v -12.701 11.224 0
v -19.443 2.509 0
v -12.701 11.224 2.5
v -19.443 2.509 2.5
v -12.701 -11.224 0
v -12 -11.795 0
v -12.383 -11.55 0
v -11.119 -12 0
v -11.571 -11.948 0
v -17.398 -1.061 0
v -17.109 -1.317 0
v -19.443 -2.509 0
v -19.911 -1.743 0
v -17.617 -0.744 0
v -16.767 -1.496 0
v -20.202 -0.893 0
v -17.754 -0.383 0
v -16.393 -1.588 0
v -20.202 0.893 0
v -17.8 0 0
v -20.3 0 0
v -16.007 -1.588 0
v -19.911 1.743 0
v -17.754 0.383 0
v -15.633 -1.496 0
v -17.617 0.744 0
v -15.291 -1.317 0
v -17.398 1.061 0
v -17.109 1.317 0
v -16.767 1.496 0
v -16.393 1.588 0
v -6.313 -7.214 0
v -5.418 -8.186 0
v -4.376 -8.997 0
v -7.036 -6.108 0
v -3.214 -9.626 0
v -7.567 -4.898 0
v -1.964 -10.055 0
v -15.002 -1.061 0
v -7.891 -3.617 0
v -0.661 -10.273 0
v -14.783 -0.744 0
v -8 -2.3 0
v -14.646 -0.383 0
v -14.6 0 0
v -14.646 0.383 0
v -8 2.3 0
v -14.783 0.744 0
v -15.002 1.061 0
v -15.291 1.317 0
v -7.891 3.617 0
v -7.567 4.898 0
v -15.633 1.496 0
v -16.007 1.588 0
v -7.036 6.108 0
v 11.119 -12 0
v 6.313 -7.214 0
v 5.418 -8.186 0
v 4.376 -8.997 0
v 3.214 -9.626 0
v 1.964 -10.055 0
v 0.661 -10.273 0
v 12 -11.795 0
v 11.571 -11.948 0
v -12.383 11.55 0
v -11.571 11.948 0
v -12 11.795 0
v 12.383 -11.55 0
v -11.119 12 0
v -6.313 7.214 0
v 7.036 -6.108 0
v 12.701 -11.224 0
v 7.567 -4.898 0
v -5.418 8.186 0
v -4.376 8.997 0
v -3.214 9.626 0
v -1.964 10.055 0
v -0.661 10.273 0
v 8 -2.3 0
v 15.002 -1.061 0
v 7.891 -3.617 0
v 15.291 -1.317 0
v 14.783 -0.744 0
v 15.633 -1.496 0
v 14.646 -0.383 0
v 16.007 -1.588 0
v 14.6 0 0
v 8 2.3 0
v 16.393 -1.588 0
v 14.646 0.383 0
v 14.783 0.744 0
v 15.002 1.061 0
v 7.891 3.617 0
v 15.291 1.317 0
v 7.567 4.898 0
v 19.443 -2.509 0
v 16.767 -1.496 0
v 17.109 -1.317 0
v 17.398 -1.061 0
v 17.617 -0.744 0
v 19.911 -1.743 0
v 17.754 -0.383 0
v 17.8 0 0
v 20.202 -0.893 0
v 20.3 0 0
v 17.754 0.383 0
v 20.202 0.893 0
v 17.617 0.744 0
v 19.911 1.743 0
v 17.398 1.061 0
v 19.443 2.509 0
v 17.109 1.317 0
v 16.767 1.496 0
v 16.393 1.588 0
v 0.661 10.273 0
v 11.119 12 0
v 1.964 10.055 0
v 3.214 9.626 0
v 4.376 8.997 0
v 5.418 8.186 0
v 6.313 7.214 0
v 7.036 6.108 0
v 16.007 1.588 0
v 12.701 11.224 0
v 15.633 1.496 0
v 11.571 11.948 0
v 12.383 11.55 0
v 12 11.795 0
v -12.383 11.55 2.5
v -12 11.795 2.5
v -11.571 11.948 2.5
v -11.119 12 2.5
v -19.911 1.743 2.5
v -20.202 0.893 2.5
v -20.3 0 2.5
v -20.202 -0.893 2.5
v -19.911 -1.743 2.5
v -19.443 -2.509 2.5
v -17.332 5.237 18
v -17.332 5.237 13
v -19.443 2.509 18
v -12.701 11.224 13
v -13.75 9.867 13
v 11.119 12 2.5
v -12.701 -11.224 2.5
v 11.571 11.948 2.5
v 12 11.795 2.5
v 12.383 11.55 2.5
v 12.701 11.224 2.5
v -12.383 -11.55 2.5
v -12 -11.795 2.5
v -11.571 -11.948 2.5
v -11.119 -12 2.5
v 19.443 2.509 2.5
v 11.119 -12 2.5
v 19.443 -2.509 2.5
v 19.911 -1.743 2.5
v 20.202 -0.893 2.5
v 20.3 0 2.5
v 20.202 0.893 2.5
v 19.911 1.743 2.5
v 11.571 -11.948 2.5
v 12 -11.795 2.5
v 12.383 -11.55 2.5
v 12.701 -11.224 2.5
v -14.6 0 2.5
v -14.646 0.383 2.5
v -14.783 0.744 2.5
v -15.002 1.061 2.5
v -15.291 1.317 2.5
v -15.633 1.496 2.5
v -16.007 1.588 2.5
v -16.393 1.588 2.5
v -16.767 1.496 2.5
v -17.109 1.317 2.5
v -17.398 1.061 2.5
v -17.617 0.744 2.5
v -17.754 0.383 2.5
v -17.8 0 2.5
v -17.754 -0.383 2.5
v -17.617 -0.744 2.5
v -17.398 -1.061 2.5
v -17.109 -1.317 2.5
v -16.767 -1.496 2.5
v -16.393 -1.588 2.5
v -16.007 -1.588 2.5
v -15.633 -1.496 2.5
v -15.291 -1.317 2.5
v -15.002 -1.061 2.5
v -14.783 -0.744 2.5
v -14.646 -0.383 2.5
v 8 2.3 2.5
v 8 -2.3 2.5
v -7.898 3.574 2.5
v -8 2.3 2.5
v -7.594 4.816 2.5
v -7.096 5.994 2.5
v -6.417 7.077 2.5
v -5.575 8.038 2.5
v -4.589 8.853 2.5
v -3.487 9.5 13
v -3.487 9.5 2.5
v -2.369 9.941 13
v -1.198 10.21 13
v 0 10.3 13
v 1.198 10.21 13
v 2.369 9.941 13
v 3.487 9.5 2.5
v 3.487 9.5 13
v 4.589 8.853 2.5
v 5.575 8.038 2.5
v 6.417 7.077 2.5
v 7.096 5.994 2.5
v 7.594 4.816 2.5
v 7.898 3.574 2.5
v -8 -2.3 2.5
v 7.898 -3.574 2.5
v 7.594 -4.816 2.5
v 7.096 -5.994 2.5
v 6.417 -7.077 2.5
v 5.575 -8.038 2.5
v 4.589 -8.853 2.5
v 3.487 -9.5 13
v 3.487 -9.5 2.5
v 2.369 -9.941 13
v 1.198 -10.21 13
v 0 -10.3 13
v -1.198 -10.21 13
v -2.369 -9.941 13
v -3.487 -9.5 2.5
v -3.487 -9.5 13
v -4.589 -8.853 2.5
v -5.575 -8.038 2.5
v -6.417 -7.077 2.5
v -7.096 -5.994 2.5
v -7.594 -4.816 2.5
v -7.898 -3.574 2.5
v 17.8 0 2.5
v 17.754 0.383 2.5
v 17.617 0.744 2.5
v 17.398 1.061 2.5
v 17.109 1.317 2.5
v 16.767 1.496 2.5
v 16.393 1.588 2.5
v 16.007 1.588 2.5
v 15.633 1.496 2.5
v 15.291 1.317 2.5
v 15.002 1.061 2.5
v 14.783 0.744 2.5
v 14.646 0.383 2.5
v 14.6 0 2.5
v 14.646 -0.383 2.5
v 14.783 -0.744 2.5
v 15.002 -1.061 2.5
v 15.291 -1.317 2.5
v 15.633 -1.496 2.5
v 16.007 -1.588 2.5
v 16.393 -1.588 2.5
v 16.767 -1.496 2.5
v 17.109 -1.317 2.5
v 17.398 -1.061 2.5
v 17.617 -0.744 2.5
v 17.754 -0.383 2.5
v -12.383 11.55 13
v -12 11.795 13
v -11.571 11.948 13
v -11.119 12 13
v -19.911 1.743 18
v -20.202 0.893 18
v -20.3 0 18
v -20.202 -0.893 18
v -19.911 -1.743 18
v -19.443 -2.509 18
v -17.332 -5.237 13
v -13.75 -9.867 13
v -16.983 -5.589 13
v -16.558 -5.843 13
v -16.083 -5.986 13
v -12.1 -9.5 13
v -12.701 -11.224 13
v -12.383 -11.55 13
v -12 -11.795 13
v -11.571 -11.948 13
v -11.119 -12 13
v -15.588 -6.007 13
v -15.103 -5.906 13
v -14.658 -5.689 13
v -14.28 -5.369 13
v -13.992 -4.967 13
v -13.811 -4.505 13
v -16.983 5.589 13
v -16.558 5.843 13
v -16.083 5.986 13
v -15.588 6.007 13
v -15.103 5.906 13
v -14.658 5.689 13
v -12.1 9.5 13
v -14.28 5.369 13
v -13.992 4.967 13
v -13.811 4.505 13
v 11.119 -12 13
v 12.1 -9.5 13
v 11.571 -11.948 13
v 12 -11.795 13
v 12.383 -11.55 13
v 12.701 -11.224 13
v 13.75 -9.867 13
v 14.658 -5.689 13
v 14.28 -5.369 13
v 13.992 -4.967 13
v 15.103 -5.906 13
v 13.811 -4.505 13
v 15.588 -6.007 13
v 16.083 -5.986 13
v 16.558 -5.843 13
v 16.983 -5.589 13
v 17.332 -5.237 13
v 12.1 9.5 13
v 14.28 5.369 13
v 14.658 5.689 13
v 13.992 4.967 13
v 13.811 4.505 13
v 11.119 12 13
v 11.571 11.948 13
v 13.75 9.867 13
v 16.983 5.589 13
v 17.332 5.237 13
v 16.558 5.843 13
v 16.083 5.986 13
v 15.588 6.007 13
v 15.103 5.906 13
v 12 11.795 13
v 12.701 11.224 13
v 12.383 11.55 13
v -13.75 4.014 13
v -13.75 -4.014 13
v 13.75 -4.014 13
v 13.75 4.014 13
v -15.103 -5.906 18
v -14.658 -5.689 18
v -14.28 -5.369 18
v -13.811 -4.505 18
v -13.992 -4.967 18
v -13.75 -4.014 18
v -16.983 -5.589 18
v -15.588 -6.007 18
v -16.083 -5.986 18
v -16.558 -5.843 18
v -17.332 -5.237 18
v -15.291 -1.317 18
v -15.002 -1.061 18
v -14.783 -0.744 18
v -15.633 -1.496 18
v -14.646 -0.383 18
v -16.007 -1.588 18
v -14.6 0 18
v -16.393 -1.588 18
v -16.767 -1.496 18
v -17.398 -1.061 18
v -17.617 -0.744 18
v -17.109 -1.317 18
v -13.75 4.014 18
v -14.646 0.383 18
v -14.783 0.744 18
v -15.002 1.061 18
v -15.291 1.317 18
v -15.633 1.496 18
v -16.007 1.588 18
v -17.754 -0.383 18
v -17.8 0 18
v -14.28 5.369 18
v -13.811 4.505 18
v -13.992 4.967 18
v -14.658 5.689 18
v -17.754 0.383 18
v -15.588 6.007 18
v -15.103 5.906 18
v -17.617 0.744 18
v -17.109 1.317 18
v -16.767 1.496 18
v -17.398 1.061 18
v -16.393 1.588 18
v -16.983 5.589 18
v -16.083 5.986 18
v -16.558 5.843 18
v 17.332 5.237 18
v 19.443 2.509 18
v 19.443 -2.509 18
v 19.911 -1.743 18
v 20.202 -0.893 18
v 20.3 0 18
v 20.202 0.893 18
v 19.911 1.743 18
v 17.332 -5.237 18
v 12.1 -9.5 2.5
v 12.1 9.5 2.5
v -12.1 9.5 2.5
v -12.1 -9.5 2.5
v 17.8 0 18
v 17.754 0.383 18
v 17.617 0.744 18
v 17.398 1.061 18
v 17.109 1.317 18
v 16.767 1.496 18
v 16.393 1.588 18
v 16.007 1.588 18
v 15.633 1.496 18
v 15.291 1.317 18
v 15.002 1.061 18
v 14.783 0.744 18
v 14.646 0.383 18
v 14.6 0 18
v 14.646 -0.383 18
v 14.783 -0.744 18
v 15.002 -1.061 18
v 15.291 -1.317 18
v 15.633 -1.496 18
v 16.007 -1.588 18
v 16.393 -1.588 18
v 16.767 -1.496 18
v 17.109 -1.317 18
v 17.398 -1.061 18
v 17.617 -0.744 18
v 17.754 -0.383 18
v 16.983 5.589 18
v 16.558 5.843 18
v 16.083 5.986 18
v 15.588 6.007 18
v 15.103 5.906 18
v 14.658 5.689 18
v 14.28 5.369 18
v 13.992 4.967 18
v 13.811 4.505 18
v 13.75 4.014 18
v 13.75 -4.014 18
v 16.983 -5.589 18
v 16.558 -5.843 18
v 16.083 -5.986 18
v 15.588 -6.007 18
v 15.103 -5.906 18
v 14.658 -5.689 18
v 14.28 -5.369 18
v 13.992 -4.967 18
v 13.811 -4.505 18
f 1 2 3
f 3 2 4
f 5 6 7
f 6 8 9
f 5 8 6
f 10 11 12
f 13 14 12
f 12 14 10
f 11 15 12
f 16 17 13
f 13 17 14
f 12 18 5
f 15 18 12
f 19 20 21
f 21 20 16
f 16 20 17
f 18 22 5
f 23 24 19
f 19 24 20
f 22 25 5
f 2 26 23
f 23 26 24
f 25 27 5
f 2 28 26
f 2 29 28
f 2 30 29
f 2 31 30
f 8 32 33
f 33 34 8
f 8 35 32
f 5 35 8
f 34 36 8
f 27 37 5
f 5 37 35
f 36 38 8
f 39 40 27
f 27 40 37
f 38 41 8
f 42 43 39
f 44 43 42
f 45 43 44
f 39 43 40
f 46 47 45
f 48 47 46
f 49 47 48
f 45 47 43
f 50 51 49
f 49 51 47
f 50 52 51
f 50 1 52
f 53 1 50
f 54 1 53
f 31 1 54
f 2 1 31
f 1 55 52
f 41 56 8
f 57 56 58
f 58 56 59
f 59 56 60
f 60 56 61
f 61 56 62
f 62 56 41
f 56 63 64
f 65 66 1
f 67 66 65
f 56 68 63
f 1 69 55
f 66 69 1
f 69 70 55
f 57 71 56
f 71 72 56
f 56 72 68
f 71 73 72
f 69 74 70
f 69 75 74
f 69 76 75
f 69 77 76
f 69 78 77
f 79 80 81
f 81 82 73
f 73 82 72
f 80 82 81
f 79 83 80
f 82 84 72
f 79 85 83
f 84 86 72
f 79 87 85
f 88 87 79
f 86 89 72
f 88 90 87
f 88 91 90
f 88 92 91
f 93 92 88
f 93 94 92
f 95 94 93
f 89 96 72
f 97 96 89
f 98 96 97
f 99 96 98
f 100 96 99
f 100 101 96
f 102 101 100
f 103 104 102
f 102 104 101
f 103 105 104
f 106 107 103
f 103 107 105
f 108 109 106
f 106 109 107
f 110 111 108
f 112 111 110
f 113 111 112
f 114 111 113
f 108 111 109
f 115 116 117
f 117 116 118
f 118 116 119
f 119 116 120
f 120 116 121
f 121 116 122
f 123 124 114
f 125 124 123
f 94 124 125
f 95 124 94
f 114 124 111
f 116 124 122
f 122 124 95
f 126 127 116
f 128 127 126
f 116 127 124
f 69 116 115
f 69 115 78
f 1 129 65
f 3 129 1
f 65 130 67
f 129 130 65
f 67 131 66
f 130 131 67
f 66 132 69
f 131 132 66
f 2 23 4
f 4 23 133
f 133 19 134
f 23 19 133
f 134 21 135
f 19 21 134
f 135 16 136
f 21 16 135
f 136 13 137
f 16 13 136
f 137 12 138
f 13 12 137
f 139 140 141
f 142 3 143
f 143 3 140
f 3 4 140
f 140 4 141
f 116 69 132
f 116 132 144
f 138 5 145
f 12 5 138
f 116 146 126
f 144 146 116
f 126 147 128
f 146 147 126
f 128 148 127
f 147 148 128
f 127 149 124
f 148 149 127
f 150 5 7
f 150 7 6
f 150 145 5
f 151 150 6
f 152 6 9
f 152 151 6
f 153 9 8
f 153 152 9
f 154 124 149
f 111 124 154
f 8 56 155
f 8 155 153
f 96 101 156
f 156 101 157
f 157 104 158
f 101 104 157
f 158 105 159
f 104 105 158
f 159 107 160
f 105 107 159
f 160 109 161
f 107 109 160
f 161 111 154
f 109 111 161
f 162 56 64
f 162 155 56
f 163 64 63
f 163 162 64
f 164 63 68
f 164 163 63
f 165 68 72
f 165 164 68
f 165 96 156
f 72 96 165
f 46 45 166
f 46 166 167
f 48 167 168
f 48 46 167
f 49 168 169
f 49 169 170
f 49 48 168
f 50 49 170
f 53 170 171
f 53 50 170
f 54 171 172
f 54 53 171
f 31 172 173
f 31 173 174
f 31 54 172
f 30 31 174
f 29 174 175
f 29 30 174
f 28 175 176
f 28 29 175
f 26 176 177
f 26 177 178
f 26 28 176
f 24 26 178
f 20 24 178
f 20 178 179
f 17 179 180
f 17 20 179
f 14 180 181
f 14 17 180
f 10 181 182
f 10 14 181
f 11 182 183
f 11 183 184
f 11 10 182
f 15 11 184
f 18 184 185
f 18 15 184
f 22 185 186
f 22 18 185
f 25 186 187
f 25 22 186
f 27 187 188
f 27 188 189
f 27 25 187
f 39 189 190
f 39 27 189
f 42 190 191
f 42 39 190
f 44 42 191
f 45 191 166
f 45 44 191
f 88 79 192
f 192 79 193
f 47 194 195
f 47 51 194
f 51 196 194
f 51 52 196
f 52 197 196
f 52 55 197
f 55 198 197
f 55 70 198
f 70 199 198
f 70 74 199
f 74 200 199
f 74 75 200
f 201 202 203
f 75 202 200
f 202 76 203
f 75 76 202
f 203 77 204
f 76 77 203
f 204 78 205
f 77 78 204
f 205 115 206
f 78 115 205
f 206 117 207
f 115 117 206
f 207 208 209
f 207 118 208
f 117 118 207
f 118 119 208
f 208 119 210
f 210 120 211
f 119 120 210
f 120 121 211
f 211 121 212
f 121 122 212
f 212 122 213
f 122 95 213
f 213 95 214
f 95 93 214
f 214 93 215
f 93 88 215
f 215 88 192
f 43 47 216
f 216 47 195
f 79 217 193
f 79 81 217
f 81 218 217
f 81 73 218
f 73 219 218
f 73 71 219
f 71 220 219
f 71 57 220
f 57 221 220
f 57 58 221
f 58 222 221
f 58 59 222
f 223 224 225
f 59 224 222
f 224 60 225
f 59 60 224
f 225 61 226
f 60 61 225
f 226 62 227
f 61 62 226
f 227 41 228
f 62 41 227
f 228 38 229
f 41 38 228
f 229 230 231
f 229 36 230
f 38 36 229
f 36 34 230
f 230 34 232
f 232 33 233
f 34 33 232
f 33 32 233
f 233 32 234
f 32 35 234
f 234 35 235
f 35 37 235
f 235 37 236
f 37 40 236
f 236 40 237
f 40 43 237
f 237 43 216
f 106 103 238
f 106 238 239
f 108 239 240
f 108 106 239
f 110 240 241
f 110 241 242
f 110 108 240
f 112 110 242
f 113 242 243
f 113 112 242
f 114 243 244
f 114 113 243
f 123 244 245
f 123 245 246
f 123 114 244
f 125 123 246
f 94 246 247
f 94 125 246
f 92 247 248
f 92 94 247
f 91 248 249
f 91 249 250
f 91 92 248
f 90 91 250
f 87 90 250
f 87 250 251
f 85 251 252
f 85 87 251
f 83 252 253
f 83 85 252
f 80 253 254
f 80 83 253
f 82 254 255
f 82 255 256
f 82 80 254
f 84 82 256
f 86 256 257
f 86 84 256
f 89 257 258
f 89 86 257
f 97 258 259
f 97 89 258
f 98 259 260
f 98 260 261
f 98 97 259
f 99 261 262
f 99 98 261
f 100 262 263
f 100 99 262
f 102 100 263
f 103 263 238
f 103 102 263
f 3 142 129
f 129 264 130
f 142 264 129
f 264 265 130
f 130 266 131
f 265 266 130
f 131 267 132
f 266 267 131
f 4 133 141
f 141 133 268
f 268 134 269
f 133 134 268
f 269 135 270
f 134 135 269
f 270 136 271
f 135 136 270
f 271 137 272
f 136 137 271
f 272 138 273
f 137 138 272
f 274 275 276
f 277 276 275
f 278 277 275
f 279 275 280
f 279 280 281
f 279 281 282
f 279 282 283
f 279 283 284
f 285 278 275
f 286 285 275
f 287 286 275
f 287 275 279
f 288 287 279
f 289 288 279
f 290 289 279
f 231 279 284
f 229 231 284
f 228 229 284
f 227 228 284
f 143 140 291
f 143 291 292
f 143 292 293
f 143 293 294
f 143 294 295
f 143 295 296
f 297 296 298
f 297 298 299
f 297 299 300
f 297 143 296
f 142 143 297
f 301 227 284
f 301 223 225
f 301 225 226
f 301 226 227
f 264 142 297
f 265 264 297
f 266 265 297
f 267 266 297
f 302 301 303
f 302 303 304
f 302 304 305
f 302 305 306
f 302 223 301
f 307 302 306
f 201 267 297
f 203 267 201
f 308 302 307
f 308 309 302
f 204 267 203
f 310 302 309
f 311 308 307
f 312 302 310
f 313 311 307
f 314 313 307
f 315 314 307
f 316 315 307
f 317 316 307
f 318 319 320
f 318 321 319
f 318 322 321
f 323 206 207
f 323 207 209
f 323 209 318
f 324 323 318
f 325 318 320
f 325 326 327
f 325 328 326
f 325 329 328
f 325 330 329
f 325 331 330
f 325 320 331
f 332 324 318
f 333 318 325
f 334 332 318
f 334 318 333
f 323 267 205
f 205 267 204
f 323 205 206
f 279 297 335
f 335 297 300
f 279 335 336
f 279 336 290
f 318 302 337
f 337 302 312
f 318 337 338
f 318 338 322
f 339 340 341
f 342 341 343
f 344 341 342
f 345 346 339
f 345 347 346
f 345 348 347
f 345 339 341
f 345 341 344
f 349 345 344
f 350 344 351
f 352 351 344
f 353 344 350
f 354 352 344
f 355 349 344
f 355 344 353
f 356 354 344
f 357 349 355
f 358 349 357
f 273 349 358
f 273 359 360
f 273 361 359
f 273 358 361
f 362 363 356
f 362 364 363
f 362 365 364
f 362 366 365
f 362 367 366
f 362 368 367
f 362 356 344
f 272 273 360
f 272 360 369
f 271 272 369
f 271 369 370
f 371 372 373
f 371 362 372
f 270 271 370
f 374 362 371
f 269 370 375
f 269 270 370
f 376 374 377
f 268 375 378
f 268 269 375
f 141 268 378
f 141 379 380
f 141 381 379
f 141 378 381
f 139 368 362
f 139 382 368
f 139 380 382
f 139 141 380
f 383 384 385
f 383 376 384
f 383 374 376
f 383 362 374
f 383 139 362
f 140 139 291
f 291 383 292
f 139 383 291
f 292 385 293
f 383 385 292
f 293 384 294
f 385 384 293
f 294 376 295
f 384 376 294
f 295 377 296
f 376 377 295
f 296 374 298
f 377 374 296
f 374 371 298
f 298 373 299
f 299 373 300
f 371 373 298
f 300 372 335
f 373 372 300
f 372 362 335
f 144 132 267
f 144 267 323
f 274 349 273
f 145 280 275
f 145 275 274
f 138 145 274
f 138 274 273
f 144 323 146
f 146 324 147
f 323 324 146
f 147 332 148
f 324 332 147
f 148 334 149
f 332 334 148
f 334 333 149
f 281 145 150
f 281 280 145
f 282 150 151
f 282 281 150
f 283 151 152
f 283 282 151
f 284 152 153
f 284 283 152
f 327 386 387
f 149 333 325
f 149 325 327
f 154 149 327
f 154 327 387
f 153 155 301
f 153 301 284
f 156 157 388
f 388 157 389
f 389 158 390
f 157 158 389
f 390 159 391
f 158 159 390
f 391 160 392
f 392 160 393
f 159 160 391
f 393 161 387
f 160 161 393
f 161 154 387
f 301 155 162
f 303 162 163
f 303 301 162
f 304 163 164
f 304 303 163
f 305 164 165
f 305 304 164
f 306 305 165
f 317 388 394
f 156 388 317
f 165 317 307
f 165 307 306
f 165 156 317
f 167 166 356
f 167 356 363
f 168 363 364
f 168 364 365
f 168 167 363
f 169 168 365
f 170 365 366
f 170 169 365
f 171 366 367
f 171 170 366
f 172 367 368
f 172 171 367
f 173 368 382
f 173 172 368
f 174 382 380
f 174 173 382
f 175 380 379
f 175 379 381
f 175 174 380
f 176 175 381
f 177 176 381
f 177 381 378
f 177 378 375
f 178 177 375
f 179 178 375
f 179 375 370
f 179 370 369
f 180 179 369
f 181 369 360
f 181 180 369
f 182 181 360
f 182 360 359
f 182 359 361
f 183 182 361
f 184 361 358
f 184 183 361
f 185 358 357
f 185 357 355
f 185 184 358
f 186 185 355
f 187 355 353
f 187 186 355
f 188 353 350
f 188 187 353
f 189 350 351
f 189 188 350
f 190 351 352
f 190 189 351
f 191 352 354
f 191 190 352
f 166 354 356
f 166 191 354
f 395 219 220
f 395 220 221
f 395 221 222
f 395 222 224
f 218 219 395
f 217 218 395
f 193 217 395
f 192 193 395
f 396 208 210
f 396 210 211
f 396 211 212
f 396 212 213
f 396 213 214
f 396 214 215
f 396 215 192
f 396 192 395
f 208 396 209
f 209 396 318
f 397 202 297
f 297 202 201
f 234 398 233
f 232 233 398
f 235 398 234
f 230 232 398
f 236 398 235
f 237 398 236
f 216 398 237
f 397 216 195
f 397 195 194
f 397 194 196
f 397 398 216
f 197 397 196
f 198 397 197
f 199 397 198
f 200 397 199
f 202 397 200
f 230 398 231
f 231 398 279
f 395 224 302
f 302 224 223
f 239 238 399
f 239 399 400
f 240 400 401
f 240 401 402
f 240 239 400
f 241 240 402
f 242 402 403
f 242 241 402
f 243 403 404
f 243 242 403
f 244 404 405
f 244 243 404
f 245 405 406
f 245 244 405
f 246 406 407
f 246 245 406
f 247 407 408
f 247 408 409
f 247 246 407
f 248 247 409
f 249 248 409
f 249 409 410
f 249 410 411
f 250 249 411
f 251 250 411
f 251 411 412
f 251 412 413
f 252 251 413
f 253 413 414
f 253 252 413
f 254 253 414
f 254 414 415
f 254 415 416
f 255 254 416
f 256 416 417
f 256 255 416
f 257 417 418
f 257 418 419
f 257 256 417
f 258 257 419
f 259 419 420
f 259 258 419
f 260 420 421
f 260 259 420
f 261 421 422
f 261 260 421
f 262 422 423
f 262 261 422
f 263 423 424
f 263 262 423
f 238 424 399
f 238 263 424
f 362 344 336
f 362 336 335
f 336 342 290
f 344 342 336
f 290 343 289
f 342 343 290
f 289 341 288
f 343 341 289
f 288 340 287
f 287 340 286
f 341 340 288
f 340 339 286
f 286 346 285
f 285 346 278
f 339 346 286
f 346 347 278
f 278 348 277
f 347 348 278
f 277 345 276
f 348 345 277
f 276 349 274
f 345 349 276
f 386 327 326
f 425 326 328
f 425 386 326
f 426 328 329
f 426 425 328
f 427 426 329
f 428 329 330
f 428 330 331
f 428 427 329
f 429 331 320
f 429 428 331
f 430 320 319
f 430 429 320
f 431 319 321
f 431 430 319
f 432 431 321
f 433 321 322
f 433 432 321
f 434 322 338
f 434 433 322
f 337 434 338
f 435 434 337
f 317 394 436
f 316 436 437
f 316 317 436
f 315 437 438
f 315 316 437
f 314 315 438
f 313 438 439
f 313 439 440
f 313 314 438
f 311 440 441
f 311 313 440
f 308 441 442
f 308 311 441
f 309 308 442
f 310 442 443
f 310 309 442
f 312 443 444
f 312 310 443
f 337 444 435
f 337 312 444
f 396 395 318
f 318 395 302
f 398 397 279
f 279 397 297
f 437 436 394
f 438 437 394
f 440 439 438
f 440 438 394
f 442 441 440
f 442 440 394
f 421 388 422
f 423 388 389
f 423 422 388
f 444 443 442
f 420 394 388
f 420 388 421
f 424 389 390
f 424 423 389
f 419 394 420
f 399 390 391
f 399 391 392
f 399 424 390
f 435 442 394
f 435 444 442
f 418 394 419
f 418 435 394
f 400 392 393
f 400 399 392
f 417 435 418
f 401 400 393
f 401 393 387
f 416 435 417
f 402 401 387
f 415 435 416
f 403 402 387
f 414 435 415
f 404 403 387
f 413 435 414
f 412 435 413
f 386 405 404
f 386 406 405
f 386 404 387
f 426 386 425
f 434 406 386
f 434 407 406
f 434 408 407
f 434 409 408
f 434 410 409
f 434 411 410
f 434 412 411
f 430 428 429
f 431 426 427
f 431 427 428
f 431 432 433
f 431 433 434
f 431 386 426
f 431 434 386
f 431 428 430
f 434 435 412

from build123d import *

# Parameters (mm, degrees)
SKETCH_R        = 1.6
PAD_DEPTH       = 2.5
SKETCH001_R     = 1.6
SKETCH001_W     = 24.2
SKETCH001_H     = 19
PAD001_DEPTH    = 15.5
SKETCH002_W     = 27.5
SKETCH002_H     = 25
POCKET_DEPTH    = 5
POCKET001_DEPTH = 18.001
FILLET_R        = 2


with BuildPart() as part:
    # Sketch → Pad (new body)
    with BuildSketch(Plane.XY):
        with BuildLine():
            Line((-12.1, 12), (12.1, 12))
            Line((12.1, 12), (19.442827, 2.508799))
            ThreePointArc((19.442837, -2.508786), (20.3, 8e-06), (19.442827, 2.508799))
            Line((19.442837, -2.508786), (12.1, -12))
            Line((12.1, -12), (-12.1, -12))
            Line((-12.1, -12), (-19.442827, -2.508799))
            ThreePointArc((-19.442827, 2.508799), (-20.3, 0), (-19.442827, -2.508799))
            Line((-12.1, 12), (-19.442827, 2.508799))
        make_face()
        with Locations((-16.2, 0)):
            Circle(SKETCH_R, mode=Mode.SUBTRACT)
        with Locations((16.2, 0)):
            Circle(SKETCH_R, mode=Mode.SUBTRACT)
    extrude(amount=PAD_DEPTH)

    # Sketch001 (on Face12 of Pad) → Pad001 (join)
    with BuildSketch(Plane.XY.offset(2.5)):
        with BuildLine():
            Line((-12.1, 12), (-19.442827, 2.508799))
            ThreePointArc((-19.442827, 2.508799), (-20.3, 0), (-19.442827, -2.508799))
            Line((-12.1, -12), (-19.442827, -2.508799))
            Line((12.1, -12), (-12.1, -12))
            Line((19.442837, -2.508786), (12.1, -12))
            ThreePointArc((19.442837, -2.508786), (20.3, 8e-06), (19.442827, 2.508799))
            Line((12.1, 12), (19.442827, 2.508799))
            Line((-12.1, 12), (12.1, 12))
        make_face()
        with Locations((-16.2, 0)):
            Circle(SKETCH001_R, mode=Mode.SUBTRACT)
        with Locations((16.2, 0)):
            Circle(SKETCH001_R, mode=Mode.SUBTRACT)
        Rectangle(SKETCH001_W, SKETCH001_H, mode=Mode.SUBTRACT)
    extrude(amount=PAD001_DEPTH)

    # Sketch002 (on Face15 of Pad001) → Pocket (cut)
    with BuildSketch(Plane.XY.offset(18)):
        Rectangle(SKETCH002_W, SKETCH002_H)
    extrude(amount=-POCKET_DEPTH, mode=Mode.SUBTRACT)

    # Sketch003 (on Face4 of Pocket) → Pocket001 (cut, through all)
    with BuildSketch(Plane(origin=(0, 0, 0), x_dir=(1, 0, 0), z_dir=(0, 0, -1))):
        with BuildLine():
            ThreePointArc((8, 2.3), (0, 10.3), (-8, 2.3))
            Line((-8, 2.3), (-8, -2.3))
            ThreePointArc((-8, -2.3), (0, -10.3), (8, -2.3))
            Line((8, -2.3), (8, 2.3))
        make_face()
    extrude(amount=-POCKET001_DEPTH, mode=Mode.SUBTRACT)

    # Fillet
    fillet_edges = [part.edges().sort_by_distance(p)[0] for p in [
        (-12.1, 12, 7.75),
        (12.1, 12, 7.75),
        (12.1, -12, 7.75),
        (-12.1, -12, 7.75),
        (-13.75, -9.867241, 15.5),
        (13.75, -9.867241, 15.5),
        (13.75, 9.867241, 15.5),
        (-13.75, 9.867241, 15.5),
    ]]
    fillet(fillet_edges, radius=FILLET_R)


solid = part.part
